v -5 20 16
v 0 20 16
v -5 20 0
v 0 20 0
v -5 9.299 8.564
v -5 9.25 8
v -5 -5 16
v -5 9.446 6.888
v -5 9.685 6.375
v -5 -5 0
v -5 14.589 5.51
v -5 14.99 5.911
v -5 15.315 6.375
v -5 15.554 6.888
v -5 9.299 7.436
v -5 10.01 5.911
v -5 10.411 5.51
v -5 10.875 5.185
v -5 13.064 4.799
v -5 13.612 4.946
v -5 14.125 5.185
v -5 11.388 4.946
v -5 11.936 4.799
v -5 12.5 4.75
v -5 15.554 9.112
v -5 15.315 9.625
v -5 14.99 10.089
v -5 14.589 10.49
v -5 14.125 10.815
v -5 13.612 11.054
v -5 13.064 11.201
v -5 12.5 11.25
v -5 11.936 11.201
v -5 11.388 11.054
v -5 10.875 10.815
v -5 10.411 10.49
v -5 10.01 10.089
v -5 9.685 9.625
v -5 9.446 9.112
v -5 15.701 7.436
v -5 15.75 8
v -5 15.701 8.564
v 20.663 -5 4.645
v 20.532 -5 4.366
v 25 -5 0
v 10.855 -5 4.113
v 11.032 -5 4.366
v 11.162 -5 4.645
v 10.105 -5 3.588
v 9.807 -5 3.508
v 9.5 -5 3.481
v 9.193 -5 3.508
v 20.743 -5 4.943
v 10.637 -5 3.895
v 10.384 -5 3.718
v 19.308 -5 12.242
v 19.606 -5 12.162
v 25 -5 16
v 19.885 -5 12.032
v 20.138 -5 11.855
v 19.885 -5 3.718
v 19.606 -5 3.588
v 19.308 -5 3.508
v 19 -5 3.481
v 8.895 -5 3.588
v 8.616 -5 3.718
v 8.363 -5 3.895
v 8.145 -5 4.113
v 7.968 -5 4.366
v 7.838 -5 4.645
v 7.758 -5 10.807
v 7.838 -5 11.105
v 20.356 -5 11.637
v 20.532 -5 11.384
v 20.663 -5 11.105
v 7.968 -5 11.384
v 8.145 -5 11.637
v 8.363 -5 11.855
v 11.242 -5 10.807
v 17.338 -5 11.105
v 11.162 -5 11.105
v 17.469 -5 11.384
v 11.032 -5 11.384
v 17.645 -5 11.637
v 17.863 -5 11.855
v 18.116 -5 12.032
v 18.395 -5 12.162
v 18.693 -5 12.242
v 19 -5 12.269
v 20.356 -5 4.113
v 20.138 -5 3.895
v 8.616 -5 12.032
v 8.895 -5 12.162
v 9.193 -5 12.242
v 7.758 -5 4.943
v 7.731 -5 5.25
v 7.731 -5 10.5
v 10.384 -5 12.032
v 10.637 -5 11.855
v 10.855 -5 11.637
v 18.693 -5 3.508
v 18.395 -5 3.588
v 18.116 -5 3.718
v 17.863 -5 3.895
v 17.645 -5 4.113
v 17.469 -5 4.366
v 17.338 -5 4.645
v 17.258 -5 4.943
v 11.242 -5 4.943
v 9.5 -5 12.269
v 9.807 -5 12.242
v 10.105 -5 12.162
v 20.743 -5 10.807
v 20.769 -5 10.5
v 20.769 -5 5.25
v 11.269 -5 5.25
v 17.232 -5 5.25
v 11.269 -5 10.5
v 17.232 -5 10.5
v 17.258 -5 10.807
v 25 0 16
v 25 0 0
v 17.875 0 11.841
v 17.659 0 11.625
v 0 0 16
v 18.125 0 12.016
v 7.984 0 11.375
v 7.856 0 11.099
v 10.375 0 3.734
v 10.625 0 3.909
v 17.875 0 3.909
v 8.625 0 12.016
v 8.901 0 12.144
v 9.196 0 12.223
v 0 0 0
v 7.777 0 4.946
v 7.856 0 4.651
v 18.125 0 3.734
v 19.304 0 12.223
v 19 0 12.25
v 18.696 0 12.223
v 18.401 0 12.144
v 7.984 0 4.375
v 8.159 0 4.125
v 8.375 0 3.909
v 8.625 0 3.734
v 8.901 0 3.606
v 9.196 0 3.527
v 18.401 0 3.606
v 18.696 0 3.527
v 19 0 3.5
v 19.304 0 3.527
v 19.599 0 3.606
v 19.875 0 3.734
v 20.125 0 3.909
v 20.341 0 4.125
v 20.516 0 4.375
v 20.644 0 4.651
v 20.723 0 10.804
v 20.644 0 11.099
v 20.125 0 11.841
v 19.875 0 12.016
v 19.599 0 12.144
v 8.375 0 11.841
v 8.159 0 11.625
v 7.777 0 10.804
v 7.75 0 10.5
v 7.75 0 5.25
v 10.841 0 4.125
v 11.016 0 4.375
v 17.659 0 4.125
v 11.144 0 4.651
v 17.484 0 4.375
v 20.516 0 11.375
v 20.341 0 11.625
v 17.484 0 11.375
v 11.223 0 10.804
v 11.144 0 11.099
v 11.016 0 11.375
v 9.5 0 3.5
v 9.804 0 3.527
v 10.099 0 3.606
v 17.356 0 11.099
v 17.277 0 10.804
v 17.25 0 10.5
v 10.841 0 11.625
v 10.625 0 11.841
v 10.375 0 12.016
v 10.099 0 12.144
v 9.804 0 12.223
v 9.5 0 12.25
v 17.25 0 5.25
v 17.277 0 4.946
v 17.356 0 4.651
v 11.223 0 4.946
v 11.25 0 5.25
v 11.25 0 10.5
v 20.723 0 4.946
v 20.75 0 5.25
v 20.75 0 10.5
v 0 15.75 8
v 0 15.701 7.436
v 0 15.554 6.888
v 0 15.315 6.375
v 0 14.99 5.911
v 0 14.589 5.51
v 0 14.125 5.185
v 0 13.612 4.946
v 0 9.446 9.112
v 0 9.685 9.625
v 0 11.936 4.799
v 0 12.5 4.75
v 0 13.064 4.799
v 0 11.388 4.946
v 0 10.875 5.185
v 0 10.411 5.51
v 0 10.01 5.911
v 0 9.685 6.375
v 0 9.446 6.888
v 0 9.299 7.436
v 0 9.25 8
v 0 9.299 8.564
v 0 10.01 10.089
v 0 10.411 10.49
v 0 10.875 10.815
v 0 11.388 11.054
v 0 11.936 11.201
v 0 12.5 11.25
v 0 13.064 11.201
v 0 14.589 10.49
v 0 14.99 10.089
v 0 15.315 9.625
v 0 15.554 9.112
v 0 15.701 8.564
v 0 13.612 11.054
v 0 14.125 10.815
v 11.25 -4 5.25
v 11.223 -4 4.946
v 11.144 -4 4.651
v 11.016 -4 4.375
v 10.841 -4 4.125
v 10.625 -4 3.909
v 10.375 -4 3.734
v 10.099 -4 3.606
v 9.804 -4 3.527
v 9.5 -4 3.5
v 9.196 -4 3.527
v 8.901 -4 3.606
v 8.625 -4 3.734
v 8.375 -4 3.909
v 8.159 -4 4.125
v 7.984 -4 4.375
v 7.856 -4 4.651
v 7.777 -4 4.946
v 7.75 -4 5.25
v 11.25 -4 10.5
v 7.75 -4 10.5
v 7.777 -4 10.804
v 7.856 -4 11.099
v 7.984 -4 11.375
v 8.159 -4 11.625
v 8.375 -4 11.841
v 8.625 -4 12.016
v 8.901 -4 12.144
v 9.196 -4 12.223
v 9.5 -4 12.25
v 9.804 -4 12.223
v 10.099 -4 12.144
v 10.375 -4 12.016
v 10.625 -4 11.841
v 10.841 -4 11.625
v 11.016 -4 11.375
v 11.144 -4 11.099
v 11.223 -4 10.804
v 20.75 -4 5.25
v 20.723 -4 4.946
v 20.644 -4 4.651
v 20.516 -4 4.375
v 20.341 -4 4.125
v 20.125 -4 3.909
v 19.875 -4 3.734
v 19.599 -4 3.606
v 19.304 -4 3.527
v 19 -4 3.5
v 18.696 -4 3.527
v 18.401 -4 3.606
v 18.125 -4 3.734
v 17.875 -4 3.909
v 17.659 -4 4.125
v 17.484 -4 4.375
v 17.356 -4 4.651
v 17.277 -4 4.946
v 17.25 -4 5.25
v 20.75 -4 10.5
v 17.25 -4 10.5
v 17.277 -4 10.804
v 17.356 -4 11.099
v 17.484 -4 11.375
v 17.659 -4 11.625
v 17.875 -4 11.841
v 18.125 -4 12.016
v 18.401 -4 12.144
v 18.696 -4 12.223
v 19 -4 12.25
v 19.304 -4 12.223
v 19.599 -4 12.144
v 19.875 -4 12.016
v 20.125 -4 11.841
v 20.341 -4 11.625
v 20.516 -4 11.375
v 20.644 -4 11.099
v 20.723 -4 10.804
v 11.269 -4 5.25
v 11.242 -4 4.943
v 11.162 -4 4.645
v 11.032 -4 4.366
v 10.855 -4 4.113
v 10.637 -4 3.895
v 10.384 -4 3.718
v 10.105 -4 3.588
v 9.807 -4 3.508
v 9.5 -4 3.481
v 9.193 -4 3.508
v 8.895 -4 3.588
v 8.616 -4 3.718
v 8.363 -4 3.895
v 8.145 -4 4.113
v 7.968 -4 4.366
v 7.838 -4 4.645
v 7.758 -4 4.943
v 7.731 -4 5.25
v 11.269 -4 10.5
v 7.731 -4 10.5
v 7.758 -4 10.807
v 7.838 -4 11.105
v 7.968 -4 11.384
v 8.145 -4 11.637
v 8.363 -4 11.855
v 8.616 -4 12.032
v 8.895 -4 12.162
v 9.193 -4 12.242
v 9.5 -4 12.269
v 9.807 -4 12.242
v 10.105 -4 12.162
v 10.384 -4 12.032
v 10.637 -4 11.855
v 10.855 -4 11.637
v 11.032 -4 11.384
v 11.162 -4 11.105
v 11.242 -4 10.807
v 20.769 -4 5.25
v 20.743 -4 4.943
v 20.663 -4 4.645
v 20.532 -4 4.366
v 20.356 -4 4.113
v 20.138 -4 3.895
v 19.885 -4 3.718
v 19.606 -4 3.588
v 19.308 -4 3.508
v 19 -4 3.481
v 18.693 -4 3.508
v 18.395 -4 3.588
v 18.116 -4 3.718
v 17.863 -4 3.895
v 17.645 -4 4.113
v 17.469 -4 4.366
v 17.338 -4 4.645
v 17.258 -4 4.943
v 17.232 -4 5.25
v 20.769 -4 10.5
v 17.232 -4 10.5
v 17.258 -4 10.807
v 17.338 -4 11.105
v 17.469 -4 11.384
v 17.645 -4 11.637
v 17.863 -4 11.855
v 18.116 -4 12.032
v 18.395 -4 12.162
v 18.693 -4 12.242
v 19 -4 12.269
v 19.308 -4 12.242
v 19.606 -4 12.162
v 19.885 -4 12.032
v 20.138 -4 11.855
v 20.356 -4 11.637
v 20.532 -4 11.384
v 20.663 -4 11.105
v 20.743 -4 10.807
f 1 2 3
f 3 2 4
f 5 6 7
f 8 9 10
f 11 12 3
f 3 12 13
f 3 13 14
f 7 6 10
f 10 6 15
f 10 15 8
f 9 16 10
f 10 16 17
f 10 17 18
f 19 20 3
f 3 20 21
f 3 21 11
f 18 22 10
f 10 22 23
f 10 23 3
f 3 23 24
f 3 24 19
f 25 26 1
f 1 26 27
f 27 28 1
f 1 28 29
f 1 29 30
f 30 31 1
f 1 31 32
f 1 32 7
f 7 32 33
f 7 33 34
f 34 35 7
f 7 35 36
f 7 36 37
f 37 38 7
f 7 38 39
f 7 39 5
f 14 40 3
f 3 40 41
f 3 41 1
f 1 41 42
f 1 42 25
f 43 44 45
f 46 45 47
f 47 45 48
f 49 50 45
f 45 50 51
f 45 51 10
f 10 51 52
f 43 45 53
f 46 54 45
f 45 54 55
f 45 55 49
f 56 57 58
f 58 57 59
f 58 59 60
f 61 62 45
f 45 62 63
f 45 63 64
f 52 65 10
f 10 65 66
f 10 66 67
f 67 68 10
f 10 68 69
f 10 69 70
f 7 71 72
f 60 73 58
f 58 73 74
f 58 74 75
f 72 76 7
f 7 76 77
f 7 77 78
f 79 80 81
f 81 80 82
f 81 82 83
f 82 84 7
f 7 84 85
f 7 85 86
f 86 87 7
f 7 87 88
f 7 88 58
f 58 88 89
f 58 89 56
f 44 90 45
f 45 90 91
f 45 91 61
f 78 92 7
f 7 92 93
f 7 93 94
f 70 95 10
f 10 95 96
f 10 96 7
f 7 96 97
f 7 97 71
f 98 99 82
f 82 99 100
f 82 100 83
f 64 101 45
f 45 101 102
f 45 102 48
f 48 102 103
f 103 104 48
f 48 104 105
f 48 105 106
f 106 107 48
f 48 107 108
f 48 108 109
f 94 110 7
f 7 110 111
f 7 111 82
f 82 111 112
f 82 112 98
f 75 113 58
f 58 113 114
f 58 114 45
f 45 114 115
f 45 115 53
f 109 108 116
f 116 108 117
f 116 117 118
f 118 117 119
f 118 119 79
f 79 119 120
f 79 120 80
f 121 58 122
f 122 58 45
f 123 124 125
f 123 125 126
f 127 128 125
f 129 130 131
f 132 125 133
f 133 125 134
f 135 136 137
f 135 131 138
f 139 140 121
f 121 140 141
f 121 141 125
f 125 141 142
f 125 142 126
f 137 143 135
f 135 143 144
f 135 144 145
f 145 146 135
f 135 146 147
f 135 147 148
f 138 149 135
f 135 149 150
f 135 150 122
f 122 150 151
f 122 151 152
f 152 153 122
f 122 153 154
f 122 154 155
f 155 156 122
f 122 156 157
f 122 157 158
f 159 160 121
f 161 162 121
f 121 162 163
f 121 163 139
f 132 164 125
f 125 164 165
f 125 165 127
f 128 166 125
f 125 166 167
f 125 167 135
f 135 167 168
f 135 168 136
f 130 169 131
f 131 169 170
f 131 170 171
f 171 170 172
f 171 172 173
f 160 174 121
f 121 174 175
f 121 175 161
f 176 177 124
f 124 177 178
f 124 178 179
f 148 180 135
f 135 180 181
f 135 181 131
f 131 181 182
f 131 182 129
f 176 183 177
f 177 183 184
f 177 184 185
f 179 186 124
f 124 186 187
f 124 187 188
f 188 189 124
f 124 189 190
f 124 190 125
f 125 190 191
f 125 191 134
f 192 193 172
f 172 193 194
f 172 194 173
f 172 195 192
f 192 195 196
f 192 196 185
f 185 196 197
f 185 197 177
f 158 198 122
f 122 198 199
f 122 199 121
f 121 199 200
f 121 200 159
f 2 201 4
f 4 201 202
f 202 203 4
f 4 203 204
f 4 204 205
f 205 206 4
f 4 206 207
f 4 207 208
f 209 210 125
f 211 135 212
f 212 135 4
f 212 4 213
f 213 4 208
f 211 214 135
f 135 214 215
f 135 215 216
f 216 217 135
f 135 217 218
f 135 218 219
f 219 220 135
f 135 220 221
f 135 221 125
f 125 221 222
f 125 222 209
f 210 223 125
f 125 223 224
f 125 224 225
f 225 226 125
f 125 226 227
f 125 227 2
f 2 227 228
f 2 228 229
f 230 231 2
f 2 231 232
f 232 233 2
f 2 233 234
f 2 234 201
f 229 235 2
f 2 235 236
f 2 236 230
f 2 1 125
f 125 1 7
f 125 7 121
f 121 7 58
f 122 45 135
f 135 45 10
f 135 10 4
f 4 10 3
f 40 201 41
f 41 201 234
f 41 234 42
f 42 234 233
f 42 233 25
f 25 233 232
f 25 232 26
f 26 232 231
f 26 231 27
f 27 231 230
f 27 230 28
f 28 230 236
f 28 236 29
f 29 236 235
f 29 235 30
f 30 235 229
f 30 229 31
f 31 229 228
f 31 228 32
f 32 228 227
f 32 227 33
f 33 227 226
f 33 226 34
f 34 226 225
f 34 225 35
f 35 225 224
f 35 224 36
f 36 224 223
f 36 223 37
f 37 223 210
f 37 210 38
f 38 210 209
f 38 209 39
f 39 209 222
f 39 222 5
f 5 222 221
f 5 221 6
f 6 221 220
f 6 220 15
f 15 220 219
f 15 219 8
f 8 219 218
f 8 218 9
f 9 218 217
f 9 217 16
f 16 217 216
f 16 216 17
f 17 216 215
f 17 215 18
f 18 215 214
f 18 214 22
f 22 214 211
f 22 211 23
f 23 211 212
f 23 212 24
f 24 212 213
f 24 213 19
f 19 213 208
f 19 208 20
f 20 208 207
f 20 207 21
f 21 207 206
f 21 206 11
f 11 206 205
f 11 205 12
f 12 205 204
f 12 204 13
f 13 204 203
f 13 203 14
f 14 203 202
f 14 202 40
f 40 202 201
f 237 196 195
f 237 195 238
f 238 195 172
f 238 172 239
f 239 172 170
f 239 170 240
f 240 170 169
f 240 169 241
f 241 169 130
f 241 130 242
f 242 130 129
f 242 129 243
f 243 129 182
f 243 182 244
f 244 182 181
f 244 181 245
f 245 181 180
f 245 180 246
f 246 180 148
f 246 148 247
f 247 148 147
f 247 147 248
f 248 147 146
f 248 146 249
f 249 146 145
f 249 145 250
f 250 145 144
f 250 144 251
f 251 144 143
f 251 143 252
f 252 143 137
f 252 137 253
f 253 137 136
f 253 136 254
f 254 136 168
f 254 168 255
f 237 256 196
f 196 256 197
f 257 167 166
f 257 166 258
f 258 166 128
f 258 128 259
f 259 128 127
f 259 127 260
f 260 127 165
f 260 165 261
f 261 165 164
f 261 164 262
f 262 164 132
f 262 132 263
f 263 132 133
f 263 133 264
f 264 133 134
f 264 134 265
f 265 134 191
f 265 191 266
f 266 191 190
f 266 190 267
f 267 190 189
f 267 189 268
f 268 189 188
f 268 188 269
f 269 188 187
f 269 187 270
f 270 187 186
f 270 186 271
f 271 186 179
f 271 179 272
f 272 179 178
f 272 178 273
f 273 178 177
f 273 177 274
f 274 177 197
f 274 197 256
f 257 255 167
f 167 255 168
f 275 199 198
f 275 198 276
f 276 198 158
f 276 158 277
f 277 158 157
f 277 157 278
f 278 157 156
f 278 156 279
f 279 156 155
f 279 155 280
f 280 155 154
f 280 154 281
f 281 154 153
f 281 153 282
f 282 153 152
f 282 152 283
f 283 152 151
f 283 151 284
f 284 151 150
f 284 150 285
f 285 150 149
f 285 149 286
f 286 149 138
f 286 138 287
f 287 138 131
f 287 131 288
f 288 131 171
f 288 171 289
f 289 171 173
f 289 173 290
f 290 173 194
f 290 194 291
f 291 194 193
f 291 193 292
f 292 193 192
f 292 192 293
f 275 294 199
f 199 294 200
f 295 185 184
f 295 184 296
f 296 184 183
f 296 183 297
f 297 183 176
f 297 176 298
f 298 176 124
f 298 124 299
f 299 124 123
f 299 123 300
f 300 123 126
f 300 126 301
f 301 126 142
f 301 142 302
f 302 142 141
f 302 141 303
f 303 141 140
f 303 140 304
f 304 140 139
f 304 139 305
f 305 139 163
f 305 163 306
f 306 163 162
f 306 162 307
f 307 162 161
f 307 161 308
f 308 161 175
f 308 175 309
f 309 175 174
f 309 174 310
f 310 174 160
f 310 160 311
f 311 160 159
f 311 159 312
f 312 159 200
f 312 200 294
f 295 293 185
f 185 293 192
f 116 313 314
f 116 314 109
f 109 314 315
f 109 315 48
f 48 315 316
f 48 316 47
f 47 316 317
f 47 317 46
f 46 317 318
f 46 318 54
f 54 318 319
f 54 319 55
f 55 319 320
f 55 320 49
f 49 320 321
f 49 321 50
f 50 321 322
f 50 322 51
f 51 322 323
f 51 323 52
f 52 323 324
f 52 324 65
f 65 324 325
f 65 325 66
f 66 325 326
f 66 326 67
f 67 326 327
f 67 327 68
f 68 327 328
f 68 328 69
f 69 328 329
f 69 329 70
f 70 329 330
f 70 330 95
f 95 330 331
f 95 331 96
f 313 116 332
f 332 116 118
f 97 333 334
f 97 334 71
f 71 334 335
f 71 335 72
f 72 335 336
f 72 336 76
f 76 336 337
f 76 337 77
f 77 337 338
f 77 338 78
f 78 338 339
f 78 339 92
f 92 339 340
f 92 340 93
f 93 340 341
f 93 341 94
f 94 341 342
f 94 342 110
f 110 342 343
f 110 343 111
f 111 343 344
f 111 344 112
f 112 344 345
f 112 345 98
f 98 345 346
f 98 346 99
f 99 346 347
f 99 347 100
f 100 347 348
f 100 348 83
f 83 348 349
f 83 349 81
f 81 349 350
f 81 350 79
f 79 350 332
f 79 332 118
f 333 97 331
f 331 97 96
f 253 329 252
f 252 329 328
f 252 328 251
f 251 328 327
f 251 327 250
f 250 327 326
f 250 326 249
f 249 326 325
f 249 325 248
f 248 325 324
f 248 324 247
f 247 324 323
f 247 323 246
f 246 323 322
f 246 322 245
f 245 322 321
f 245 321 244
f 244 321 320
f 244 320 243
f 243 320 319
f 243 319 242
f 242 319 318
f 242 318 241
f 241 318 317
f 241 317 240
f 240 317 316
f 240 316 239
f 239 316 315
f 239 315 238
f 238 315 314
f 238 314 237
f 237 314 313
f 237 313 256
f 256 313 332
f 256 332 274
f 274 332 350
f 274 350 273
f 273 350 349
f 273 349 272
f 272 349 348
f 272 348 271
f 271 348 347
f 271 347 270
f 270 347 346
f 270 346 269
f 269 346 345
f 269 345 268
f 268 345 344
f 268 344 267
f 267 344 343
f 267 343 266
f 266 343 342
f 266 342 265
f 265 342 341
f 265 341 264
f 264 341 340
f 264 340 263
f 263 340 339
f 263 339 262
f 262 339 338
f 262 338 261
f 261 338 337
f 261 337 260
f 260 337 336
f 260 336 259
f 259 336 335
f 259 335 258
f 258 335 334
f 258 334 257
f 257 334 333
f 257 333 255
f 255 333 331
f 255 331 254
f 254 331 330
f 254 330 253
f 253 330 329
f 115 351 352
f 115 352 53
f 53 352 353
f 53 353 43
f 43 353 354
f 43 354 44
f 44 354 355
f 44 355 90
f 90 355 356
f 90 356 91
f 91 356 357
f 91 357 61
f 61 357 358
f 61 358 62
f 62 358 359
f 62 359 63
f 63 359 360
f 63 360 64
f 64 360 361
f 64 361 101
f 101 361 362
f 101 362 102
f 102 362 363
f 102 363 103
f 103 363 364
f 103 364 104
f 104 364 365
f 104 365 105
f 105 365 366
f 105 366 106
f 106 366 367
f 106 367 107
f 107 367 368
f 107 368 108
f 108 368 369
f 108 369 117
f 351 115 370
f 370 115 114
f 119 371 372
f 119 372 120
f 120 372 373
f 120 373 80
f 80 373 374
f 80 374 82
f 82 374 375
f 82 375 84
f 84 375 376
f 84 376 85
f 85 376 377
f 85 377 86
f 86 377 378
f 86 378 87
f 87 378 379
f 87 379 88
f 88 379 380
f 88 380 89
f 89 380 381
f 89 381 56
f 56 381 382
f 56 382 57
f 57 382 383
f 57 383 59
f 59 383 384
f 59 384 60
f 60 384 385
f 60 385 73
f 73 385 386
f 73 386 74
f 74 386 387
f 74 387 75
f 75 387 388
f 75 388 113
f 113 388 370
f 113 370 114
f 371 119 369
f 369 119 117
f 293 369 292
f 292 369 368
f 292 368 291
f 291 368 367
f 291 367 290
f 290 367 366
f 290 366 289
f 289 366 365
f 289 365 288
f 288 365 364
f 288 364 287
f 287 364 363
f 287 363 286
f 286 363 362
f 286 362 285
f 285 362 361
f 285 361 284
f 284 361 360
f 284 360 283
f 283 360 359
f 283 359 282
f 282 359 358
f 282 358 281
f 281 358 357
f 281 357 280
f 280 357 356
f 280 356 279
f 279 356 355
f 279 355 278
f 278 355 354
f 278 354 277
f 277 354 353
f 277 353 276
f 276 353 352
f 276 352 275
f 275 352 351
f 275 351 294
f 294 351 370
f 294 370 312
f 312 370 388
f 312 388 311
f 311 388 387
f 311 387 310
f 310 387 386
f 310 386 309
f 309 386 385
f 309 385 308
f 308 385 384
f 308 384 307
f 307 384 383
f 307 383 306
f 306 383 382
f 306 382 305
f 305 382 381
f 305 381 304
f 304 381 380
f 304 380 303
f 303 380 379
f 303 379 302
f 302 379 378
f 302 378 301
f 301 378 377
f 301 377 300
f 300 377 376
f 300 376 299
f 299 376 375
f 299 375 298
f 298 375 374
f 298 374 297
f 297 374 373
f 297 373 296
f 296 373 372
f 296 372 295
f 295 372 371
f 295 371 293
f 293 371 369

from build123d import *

# Parameters (mm, degrees)
ESTRUSIONE_ESTRUSIONE1_DEPTH = 16
SCHIZZO2_R                   = 3.25
TAGLIO_ESTRUSIONE1_DEPTH     = 4
TAGLIO_ESTRUSIONE2_DEPTH     = 4
SCHIZZO4_R                   = 3.25
TAGLIO_ESTRUSIONE3_DEPTH     = 3
TAGLIO_ESTRUSIONE5_DEPTH     = 3


with BuildPart() as part:
    # Schizzo1 → Estrusione-Estrusione1 (new body)
    with BuildSketch(Plane.XY):
        Polygon((0, 20), (0, 0), (25, 0), (25, -5), (-5, -5), (-5, 20), align=None)
    extrude(amount=ESTRUSIONE_ESTRUSIONE1_DEPTH)

    # Schizzo2 → Taglio-Estrusione1 (cut)
    with BuildSketch(Plane(origin=(0, 0, 0), x_dir=(0, 0, -1), z_dir=(1, 0, 0))):
        with Locations(Location((-8, 12.5, 0), (0, 0, 90))):
            Circle(SCHIZZO2_R)
    extrude(amount=-TAGLIO_ESTRUSIONE1_DEPTH, mode=Mode.SUBTRACT)

    # Schizzo3 → Taglio-Estrusione2 (cut)
    with BuildSketch(Plane(origin=(0, 0, 0), x_dir=(1, 0, 0), z_dir=(0, 1, 0))):
        with BuildLine():
            Line((17.25, -5.25), (17.25, -10.5))
            ThreePointArc((17.25, -10.5), (19, -12.25), (20.75, -10.5))
            Line((20.75, -10.5), (20.75, -5.25))
            ThreePointArc((20.75, -5.25), (19, -3.5), (17.25, -5.25))
        make_face()
        with BuildLine():
            Line((7.75, -5.25), (7.75, -10.5))
            ThreePointArc((7.75, -10.5), (9.5, -12.25), (11.25, -10.5))
            Line((11.25, -10.5), (11.25, -5.25))
            ThreePointArc((11.25, -5.25), (9.5, -3.5), (7.75, -5.25))
        make_face()
    extrude(amount=-TAGLIO_ESTRUSIONE2_DEPTH, mode=Mode.SUBTRACT)

    # Schizzo4 → Taglio-Estrusione3 (cut)
    with BuildSketch(Plane(origin=(-4, 0, 0), x_dir=(0, 0, -1), z_dir=(1, 0, 0))):
        with Locations(Location((-8, 12.5, 0), (0, 0, 90))):
            Circle(SCHIZZO4_R)
    extrude(amount=-TAGLIO_ESTRUSIONE3_DEPTH, mode=Mode.SUBTRACT)

    # Schizzo5 → Taglio-Estrusione5 (cut)
    with BuildSketch(Plane(origin=(0, -4, 0), x_dir=(1, 0, 0), z_dir=(0, 1, 0))):
        with BuildLine():
            Line((11.268981919, -5.25), (11.268981919, -10.5))
            ThreePointArc((11.268981919, -10.5), (9.5, -12.268981919), (7.731018081, -10.5))
            Line((7.731018081, -10.5), (7.731018081, -5.25))
            ThreePointArc((7.731018081, -5.25), (9.5, -3.481018081), (11.268981919, -5.25))
        make_face()
        with BuildLine():
            Line((20.769481266, -5.25), (20.769481266, -10.5))
            ThreePointArc((20.769481266, -10.5), (19.000499347, -12.268981919), (17.231517428, -10.5))
            Line((17.231517428, -10.5), (17.231517428, -5.25))
            ThreePointArc((17.231517428, -5.25), (19.000499347, -3.481018081), (20.769481266, -5.25))
        make_face()
    extrude(amount=-TAGLIO_ESTRUSIONE5_DEPTH, mode=Mode.SUBTRACT)


solid = part.part
